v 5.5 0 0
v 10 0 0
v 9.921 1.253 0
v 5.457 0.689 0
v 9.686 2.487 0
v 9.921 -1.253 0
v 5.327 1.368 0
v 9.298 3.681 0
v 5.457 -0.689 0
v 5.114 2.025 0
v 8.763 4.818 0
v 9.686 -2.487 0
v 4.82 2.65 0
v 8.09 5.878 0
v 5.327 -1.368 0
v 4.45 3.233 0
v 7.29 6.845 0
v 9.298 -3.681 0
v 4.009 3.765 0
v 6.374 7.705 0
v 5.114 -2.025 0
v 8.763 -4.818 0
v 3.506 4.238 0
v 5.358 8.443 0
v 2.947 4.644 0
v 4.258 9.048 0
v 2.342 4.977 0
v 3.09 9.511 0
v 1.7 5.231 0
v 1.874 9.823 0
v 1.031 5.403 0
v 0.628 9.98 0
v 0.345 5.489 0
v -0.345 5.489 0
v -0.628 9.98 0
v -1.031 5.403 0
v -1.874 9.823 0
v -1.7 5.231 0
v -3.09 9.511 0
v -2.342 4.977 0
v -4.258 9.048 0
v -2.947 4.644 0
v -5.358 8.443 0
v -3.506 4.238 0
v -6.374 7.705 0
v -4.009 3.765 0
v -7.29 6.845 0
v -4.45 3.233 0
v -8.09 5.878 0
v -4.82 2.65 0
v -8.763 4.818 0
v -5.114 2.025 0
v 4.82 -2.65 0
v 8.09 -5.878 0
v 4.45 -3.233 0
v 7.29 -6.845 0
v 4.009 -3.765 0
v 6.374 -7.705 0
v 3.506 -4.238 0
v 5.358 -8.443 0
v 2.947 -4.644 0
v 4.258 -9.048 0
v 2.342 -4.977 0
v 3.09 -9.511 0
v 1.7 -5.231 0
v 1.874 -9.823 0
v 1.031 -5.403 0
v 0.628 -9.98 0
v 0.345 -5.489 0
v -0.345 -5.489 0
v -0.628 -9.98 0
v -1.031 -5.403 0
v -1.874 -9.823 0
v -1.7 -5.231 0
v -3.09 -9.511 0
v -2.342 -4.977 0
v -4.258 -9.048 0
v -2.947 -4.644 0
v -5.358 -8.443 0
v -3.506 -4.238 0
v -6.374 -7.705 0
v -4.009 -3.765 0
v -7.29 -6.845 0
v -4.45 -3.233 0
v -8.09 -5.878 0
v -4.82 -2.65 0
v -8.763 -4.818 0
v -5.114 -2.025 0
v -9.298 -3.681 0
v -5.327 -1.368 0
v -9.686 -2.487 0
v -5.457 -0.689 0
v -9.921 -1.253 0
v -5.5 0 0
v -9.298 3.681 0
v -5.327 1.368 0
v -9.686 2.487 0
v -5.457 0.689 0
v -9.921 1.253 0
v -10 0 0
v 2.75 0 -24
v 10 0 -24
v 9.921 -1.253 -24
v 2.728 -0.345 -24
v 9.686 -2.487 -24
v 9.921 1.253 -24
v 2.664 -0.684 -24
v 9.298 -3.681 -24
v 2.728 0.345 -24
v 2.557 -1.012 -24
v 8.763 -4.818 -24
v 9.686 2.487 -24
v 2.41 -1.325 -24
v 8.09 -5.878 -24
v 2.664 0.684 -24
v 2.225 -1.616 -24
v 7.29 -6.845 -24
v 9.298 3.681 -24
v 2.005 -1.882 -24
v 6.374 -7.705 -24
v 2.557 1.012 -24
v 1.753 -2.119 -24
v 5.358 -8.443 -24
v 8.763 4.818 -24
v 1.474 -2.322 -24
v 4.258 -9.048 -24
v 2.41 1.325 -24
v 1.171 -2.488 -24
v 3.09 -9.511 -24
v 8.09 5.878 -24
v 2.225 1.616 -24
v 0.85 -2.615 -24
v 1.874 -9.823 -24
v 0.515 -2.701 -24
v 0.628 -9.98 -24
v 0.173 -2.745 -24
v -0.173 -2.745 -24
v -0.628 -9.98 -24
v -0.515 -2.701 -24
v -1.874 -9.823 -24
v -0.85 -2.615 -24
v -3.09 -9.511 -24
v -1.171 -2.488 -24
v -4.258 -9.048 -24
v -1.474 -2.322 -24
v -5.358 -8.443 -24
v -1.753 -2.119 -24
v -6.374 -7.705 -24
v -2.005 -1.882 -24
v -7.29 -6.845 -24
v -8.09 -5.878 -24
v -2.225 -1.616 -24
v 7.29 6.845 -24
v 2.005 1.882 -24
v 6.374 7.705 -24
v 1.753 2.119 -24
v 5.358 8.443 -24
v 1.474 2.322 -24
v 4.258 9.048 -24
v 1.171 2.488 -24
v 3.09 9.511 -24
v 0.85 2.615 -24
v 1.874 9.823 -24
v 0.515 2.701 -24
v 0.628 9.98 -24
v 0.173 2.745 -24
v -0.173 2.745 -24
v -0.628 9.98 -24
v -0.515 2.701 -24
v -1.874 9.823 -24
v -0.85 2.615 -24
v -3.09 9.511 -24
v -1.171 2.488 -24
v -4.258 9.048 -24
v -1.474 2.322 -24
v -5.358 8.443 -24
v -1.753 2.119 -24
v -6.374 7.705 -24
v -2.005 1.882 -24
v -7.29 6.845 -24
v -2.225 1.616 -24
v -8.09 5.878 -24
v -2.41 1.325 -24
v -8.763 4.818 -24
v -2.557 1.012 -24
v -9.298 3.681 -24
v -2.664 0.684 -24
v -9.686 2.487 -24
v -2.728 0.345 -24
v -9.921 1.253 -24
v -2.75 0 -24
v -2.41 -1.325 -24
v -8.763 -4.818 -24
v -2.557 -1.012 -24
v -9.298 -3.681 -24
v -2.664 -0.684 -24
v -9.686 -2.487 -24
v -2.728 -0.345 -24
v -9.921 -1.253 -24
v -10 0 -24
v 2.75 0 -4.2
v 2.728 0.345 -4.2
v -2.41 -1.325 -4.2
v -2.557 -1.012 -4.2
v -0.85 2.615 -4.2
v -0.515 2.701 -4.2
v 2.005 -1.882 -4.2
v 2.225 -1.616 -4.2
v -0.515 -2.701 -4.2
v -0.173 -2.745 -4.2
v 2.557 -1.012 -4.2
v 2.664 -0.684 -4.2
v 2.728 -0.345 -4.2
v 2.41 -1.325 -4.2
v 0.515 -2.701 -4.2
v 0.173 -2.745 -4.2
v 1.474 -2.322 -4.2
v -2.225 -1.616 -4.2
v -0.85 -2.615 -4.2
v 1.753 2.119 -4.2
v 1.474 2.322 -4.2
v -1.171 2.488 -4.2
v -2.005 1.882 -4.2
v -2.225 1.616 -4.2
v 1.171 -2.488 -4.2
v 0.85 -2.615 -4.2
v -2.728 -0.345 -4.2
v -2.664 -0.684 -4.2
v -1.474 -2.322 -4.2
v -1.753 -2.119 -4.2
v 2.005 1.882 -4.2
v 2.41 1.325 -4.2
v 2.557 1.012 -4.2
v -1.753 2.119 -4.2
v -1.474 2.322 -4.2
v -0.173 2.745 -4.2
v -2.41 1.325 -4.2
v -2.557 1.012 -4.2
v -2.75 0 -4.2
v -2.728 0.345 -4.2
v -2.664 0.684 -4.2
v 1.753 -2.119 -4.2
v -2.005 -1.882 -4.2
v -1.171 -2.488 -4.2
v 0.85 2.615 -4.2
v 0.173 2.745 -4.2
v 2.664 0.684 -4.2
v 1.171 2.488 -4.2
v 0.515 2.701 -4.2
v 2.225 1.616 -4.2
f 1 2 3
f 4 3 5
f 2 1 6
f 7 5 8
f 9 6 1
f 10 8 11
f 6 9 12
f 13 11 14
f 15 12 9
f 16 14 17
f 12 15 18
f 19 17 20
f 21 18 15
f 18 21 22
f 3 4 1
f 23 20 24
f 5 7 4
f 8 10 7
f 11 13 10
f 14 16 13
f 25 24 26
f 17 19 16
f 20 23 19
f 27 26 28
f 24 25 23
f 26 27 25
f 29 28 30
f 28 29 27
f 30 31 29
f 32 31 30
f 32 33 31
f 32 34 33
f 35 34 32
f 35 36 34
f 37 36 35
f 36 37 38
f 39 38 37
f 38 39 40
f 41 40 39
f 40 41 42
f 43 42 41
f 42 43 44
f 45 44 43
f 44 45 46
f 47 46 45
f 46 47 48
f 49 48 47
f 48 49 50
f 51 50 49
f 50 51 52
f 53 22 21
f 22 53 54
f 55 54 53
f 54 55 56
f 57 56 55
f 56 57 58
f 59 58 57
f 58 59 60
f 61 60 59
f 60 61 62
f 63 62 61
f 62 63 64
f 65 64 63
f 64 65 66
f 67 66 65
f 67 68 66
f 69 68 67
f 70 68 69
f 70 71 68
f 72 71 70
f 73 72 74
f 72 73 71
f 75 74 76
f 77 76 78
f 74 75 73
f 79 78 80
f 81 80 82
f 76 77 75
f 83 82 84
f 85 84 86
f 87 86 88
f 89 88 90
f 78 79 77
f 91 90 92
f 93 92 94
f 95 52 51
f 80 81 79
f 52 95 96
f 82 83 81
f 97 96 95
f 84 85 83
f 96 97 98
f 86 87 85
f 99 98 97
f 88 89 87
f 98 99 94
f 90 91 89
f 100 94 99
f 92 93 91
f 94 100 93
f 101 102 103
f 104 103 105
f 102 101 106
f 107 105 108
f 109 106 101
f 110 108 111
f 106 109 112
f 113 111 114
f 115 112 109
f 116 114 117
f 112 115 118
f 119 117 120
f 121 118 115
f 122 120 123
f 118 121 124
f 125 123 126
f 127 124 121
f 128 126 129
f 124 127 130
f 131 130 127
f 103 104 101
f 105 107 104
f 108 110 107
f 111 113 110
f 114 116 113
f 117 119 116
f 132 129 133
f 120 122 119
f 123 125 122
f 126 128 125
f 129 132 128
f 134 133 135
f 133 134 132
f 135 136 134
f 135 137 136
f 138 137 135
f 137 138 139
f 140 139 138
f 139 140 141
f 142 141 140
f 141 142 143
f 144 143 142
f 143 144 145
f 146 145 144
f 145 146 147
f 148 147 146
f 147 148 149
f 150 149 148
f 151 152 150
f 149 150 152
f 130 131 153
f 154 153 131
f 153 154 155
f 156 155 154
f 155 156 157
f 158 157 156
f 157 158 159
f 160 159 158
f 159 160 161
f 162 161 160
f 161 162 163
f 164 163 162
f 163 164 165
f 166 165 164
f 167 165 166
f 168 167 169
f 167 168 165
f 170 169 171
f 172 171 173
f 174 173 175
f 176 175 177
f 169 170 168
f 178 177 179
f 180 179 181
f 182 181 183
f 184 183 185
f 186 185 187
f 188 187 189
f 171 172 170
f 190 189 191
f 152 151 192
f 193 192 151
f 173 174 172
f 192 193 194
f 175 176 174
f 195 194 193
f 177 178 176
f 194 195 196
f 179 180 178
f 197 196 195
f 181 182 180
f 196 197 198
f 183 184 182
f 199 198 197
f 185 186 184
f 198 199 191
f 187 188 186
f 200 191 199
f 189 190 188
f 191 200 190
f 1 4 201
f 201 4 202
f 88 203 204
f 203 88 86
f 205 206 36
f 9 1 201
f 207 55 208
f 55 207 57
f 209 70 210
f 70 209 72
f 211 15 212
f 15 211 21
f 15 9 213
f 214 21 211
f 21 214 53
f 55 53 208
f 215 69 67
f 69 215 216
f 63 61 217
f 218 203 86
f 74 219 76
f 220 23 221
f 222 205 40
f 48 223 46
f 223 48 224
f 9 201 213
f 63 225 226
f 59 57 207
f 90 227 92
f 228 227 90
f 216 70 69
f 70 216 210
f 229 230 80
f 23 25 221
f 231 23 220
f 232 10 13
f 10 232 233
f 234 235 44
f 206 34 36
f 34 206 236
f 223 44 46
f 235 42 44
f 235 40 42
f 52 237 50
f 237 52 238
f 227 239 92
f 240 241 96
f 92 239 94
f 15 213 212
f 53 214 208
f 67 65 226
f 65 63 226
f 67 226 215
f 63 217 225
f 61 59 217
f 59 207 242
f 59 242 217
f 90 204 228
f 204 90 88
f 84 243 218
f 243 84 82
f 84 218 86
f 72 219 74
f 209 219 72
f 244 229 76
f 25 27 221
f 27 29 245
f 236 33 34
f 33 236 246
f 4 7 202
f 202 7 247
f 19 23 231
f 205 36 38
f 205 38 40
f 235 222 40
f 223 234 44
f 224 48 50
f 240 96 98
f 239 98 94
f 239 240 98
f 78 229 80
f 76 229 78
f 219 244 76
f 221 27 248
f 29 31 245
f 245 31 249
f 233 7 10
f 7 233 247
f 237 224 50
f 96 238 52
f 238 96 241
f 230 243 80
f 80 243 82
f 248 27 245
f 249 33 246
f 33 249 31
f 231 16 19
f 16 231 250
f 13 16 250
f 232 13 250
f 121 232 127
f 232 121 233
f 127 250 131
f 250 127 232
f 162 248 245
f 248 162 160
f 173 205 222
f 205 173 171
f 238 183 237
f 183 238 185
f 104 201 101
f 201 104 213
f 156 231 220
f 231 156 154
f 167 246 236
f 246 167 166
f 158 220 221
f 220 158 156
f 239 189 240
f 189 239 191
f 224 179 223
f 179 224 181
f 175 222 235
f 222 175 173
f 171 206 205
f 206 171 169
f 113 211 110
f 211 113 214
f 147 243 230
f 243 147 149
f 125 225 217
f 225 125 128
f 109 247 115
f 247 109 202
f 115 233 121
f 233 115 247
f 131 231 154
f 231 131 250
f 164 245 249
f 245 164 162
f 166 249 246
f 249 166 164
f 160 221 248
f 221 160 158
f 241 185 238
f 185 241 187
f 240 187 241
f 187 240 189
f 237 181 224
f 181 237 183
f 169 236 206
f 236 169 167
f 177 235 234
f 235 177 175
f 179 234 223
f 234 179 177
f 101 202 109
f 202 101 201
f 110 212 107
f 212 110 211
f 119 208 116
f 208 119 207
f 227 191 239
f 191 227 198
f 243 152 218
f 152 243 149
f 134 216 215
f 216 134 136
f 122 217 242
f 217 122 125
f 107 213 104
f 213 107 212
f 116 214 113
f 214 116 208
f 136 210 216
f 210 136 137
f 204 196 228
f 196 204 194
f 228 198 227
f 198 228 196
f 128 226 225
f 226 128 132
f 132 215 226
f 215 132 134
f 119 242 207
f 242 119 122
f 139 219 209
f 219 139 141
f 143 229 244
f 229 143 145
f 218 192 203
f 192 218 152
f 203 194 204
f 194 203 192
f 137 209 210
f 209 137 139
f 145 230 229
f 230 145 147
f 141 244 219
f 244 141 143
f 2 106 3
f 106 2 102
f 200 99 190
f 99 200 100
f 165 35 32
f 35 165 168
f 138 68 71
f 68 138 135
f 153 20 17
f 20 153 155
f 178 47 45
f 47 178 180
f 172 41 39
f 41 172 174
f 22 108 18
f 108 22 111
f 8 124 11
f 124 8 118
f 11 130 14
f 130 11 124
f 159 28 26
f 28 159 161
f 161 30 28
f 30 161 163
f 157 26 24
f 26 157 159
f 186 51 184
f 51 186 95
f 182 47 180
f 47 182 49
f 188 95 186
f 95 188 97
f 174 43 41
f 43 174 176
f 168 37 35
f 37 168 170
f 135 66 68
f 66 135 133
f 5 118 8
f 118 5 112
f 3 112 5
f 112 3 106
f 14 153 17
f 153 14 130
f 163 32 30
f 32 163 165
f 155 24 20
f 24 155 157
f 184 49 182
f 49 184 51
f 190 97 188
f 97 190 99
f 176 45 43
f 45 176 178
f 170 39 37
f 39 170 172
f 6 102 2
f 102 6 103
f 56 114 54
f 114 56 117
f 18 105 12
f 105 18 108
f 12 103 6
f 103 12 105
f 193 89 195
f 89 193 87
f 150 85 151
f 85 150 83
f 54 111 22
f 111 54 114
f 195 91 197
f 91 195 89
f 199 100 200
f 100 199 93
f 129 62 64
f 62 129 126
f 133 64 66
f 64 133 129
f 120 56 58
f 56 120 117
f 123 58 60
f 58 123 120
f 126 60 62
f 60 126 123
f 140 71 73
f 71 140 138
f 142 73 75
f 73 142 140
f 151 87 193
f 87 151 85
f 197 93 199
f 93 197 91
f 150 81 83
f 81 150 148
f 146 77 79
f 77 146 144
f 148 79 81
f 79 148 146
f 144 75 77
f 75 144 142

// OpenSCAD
$fn = 50;


difference() {
	union() {
		translate(v = [0, 0, -24.0000000000]) {
			cylinder(h = 24, r = 10.0000000000);
		}
	}
	union() {
		translate(v = [0, 0, 0]) {
			rotate(a = [0, 0, 0]) {
				difference() {
					union() {
						#translate(v = [0, 0, -24.0000000000]) {
							cylinder(h = 24, r = 2.2500000000);
						}
						#translate(v = [0, 0, -4.2000000000]) {
							cylinder(h = 4.2000000000, r1 = 2.7500000000, r2 = 5.5000000000);
						}
						#translate(v = [0, 0, -24.0000000000]) {
							cylinder(h = 24, r = 2.7500000000);
						}
						#translate(v = [0, 0, -24.0000000000]) {
							cylinder(h = 24, r = 2.2500000000);
						}
					}
					union();
				}
			}
		}
	}
}
